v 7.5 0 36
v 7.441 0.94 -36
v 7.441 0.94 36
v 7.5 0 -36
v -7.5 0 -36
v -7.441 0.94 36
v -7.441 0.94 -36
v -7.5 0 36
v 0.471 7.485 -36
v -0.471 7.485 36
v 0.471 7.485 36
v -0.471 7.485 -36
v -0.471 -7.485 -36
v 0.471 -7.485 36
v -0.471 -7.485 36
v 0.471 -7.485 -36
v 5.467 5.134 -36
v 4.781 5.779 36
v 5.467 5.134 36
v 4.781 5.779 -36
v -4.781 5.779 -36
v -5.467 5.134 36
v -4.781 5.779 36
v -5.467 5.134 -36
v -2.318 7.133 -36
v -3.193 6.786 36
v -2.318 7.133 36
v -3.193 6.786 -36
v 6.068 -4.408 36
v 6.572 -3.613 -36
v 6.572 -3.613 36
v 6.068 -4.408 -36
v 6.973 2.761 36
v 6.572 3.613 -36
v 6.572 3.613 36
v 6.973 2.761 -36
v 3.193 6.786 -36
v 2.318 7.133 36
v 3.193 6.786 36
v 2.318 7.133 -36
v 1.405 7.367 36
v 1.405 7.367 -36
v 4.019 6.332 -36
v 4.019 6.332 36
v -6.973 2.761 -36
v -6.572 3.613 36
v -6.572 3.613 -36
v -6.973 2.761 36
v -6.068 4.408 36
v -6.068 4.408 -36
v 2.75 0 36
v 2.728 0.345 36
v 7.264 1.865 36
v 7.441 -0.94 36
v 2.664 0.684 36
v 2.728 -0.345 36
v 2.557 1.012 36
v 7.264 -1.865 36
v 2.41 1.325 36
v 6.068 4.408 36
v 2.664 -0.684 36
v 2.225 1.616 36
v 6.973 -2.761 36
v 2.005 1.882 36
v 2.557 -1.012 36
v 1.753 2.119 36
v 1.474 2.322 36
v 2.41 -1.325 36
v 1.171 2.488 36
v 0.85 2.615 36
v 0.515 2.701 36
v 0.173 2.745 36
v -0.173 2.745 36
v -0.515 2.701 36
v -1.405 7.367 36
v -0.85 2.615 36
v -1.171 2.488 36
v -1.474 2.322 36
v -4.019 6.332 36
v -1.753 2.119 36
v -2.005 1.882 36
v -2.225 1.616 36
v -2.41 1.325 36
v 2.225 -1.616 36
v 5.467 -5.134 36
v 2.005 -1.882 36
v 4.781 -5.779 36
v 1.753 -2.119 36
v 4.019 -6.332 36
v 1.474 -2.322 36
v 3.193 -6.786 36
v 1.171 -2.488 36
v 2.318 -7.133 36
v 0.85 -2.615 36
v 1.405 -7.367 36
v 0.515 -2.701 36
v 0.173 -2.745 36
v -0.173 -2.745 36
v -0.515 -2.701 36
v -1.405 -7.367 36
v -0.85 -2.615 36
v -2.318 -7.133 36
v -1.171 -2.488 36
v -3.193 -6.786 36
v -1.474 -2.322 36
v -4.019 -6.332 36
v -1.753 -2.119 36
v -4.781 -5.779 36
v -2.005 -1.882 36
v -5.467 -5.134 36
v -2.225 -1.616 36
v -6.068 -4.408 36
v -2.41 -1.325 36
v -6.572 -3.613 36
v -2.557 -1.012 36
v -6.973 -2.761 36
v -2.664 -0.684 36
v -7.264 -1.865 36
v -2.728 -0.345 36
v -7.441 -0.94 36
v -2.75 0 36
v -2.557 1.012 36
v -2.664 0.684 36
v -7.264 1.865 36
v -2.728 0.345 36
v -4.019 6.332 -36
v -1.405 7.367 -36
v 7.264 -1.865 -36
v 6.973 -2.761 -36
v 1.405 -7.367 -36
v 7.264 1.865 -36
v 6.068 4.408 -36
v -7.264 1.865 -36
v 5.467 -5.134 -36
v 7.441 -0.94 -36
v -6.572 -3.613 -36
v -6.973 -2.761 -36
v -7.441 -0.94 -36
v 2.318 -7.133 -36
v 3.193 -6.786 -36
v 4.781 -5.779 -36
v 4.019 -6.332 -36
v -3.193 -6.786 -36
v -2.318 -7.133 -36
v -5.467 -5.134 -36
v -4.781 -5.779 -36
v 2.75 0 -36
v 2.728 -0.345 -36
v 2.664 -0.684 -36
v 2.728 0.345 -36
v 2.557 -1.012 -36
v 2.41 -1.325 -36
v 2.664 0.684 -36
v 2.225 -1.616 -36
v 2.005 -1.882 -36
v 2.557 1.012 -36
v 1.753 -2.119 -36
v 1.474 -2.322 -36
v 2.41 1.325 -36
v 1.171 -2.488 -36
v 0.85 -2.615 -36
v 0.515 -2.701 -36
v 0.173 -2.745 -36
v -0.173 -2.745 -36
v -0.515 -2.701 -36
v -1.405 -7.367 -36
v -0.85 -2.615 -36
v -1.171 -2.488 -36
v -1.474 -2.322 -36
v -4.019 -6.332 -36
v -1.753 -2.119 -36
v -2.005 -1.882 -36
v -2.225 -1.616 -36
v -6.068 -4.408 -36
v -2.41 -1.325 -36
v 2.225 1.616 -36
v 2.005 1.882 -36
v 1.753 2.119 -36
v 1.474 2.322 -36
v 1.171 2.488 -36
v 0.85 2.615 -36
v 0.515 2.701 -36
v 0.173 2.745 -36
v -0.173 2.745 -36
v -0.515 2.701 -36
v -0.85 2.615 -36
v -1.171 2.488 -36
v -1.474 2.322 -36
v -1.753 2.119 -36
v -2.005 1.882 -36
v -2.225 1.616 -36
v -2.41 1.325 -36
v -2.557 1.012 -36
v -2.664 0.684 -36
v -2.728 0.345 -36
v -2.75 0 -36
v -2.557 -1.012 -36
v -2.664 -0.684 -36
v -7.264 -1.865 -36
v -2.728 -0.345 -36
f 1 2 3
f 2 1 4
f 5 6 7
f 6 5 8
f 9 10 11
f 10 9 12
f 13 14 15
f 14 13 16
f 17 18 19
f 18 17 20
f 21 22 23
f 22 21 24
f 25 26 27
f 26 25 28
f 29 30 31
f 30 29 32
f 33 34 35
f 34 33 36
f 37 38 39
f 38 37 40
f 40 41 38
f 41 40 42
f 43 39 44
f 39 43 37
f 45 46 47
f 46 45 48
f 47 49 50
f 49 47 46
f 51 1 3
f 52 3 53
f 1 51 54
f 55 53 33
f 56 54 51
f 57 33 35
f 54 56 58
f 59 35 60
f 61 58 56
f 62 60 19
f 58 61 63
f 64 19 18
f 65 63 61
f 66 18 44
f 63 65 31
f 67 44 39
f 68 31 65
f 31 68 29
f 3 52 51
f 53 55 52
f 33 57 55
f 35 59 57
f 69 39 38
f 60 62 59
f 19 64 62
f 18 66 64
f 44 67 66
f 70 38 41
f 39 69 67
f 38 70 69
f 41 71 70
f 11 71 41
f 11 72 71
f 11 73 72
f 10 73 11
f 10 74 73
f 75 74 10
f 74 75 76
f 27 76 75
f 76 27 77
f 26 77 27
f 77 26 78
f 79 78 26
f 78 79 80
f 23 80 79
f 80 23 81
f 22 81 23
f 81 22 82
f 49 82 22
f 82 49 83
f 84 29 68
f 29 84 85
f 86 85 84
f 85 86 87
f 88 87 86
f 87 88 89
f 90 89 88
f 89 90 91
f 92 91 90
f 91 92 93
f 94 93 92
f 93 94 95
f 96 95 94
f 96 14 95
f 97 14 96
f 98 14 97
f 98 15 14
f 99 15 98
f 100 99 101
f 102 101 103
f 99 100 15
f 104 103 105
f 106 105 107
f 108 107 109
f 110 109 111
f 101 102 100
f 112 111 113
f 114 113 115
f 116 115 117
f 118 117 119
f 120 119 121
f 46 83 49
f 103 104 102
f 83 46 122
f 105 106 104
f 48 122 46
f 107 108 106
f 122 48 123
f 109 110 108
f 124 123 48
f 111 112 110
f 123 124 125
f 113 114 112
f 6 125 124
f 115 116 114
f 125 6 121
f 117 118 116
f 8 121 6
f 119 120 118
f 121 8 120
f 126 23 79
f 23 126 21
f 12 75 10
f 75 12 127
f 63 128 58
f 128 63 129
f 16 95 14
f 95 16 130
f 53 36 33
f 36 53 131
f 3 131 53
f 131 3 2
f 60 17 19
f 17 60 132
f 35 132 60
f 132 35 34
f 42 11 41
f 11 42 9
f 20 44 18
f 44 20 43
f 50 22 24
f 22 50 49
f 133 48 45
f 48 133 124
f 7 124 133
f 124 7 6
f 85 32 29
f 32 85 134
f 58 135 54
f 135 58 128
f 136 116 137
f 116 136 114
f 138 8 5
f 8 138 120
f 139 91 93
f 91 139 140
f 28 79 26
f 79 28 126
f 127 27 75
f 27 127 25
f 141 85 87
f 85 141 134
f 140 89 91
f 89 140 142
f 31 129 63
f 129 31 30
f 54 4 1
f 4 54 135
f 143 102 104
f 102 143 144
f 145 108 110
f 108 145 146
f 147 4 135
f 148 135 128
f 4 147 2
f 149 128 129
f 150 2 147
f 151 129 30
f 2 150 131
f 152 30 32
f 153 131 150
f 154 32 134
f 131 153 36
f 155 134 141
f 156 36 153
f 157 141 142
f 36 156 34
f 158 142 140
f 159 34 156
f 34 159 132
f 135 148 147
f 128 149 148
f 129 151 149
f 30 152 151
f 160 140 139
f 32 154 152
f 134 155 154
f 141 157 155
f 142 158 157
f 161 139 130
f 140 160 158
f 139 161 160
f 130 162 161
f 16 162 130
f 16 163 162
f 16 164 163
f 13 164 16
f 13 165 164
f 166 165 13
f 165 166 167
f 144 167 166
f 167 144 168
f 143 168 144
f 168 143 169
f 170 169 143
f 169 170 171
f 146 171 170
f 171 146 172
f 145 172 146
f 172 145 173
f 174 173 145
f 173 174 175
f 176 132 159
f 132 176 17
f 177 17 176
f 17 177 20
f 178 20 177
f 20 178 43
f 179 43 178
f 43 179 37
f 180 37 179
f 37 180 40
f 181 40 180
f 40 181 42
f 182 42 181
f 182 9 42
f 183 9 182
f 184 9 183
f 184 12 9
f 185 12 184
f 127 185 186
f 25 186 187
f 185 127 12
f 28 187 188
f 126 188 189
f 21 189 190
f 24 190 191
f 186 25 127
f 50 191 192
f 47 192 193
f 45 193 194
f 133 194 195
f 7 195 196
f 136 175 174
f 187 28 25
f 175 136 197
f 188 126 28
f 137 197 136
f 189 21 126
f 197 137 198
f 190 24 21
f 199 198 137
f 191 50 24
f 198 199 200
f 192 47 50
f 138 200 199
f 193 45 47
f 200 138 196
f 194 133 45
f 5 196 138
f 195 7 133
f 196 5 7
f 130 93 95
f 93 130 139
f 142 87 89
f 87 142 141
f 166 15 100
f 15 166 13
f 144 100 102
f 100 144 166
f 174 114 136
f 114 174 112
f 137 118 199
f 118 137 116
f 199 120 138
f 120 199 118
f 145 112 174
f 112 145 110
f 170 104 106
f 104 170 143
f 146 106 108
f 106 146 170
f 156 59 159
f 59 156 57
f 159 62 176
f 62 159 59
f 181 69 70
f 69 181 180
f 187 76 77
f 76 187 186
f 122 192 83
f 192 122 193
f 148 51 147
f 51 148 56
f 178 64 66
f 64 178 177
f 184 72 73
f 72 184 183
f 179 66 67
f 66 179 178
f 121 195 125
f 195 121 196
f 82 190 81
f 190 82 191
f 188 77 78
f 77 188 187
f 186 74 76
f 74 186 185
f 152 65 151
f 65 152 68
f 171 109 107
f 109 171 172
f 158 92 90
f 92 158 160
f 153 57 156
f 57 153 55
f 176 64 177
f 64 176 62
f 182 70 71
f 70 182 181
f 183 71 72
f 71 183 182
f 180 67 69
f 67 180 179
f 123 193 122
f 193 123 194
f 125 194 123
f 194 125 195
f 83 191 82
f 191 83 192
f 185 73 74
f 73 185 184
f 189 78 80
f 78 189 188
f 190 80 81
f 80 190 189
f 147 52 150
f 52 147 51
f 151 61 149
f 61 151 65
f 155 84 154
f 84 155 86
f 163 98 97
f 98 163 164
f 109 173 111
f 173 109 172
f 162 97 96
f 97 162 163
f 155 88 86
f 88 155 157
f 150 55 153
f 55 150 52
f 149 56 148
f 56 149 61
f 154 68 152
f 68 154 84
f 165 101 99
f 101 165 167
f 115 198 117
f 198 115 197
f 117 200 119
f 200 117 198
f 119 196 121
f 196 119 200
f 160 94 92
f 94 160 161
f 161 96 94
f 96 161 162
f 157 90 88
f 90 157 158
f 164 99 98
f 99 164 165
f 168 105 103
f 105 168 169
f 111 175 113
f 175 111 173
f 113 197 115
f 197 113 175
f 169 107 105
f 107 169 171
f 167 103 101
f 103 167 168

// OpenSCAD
$fn = 50;


difference() {
	union() {
		translate(v = [0, 0, -36.0000000000]) {
			cylinder(h = 72, r = 7.5000000000);
		}
	}
	union() {
		translate(v = [0, 0, -100.0000000000]) {
			cylinder(h = 200, r = 2.7500000000);
		}
	}
}
